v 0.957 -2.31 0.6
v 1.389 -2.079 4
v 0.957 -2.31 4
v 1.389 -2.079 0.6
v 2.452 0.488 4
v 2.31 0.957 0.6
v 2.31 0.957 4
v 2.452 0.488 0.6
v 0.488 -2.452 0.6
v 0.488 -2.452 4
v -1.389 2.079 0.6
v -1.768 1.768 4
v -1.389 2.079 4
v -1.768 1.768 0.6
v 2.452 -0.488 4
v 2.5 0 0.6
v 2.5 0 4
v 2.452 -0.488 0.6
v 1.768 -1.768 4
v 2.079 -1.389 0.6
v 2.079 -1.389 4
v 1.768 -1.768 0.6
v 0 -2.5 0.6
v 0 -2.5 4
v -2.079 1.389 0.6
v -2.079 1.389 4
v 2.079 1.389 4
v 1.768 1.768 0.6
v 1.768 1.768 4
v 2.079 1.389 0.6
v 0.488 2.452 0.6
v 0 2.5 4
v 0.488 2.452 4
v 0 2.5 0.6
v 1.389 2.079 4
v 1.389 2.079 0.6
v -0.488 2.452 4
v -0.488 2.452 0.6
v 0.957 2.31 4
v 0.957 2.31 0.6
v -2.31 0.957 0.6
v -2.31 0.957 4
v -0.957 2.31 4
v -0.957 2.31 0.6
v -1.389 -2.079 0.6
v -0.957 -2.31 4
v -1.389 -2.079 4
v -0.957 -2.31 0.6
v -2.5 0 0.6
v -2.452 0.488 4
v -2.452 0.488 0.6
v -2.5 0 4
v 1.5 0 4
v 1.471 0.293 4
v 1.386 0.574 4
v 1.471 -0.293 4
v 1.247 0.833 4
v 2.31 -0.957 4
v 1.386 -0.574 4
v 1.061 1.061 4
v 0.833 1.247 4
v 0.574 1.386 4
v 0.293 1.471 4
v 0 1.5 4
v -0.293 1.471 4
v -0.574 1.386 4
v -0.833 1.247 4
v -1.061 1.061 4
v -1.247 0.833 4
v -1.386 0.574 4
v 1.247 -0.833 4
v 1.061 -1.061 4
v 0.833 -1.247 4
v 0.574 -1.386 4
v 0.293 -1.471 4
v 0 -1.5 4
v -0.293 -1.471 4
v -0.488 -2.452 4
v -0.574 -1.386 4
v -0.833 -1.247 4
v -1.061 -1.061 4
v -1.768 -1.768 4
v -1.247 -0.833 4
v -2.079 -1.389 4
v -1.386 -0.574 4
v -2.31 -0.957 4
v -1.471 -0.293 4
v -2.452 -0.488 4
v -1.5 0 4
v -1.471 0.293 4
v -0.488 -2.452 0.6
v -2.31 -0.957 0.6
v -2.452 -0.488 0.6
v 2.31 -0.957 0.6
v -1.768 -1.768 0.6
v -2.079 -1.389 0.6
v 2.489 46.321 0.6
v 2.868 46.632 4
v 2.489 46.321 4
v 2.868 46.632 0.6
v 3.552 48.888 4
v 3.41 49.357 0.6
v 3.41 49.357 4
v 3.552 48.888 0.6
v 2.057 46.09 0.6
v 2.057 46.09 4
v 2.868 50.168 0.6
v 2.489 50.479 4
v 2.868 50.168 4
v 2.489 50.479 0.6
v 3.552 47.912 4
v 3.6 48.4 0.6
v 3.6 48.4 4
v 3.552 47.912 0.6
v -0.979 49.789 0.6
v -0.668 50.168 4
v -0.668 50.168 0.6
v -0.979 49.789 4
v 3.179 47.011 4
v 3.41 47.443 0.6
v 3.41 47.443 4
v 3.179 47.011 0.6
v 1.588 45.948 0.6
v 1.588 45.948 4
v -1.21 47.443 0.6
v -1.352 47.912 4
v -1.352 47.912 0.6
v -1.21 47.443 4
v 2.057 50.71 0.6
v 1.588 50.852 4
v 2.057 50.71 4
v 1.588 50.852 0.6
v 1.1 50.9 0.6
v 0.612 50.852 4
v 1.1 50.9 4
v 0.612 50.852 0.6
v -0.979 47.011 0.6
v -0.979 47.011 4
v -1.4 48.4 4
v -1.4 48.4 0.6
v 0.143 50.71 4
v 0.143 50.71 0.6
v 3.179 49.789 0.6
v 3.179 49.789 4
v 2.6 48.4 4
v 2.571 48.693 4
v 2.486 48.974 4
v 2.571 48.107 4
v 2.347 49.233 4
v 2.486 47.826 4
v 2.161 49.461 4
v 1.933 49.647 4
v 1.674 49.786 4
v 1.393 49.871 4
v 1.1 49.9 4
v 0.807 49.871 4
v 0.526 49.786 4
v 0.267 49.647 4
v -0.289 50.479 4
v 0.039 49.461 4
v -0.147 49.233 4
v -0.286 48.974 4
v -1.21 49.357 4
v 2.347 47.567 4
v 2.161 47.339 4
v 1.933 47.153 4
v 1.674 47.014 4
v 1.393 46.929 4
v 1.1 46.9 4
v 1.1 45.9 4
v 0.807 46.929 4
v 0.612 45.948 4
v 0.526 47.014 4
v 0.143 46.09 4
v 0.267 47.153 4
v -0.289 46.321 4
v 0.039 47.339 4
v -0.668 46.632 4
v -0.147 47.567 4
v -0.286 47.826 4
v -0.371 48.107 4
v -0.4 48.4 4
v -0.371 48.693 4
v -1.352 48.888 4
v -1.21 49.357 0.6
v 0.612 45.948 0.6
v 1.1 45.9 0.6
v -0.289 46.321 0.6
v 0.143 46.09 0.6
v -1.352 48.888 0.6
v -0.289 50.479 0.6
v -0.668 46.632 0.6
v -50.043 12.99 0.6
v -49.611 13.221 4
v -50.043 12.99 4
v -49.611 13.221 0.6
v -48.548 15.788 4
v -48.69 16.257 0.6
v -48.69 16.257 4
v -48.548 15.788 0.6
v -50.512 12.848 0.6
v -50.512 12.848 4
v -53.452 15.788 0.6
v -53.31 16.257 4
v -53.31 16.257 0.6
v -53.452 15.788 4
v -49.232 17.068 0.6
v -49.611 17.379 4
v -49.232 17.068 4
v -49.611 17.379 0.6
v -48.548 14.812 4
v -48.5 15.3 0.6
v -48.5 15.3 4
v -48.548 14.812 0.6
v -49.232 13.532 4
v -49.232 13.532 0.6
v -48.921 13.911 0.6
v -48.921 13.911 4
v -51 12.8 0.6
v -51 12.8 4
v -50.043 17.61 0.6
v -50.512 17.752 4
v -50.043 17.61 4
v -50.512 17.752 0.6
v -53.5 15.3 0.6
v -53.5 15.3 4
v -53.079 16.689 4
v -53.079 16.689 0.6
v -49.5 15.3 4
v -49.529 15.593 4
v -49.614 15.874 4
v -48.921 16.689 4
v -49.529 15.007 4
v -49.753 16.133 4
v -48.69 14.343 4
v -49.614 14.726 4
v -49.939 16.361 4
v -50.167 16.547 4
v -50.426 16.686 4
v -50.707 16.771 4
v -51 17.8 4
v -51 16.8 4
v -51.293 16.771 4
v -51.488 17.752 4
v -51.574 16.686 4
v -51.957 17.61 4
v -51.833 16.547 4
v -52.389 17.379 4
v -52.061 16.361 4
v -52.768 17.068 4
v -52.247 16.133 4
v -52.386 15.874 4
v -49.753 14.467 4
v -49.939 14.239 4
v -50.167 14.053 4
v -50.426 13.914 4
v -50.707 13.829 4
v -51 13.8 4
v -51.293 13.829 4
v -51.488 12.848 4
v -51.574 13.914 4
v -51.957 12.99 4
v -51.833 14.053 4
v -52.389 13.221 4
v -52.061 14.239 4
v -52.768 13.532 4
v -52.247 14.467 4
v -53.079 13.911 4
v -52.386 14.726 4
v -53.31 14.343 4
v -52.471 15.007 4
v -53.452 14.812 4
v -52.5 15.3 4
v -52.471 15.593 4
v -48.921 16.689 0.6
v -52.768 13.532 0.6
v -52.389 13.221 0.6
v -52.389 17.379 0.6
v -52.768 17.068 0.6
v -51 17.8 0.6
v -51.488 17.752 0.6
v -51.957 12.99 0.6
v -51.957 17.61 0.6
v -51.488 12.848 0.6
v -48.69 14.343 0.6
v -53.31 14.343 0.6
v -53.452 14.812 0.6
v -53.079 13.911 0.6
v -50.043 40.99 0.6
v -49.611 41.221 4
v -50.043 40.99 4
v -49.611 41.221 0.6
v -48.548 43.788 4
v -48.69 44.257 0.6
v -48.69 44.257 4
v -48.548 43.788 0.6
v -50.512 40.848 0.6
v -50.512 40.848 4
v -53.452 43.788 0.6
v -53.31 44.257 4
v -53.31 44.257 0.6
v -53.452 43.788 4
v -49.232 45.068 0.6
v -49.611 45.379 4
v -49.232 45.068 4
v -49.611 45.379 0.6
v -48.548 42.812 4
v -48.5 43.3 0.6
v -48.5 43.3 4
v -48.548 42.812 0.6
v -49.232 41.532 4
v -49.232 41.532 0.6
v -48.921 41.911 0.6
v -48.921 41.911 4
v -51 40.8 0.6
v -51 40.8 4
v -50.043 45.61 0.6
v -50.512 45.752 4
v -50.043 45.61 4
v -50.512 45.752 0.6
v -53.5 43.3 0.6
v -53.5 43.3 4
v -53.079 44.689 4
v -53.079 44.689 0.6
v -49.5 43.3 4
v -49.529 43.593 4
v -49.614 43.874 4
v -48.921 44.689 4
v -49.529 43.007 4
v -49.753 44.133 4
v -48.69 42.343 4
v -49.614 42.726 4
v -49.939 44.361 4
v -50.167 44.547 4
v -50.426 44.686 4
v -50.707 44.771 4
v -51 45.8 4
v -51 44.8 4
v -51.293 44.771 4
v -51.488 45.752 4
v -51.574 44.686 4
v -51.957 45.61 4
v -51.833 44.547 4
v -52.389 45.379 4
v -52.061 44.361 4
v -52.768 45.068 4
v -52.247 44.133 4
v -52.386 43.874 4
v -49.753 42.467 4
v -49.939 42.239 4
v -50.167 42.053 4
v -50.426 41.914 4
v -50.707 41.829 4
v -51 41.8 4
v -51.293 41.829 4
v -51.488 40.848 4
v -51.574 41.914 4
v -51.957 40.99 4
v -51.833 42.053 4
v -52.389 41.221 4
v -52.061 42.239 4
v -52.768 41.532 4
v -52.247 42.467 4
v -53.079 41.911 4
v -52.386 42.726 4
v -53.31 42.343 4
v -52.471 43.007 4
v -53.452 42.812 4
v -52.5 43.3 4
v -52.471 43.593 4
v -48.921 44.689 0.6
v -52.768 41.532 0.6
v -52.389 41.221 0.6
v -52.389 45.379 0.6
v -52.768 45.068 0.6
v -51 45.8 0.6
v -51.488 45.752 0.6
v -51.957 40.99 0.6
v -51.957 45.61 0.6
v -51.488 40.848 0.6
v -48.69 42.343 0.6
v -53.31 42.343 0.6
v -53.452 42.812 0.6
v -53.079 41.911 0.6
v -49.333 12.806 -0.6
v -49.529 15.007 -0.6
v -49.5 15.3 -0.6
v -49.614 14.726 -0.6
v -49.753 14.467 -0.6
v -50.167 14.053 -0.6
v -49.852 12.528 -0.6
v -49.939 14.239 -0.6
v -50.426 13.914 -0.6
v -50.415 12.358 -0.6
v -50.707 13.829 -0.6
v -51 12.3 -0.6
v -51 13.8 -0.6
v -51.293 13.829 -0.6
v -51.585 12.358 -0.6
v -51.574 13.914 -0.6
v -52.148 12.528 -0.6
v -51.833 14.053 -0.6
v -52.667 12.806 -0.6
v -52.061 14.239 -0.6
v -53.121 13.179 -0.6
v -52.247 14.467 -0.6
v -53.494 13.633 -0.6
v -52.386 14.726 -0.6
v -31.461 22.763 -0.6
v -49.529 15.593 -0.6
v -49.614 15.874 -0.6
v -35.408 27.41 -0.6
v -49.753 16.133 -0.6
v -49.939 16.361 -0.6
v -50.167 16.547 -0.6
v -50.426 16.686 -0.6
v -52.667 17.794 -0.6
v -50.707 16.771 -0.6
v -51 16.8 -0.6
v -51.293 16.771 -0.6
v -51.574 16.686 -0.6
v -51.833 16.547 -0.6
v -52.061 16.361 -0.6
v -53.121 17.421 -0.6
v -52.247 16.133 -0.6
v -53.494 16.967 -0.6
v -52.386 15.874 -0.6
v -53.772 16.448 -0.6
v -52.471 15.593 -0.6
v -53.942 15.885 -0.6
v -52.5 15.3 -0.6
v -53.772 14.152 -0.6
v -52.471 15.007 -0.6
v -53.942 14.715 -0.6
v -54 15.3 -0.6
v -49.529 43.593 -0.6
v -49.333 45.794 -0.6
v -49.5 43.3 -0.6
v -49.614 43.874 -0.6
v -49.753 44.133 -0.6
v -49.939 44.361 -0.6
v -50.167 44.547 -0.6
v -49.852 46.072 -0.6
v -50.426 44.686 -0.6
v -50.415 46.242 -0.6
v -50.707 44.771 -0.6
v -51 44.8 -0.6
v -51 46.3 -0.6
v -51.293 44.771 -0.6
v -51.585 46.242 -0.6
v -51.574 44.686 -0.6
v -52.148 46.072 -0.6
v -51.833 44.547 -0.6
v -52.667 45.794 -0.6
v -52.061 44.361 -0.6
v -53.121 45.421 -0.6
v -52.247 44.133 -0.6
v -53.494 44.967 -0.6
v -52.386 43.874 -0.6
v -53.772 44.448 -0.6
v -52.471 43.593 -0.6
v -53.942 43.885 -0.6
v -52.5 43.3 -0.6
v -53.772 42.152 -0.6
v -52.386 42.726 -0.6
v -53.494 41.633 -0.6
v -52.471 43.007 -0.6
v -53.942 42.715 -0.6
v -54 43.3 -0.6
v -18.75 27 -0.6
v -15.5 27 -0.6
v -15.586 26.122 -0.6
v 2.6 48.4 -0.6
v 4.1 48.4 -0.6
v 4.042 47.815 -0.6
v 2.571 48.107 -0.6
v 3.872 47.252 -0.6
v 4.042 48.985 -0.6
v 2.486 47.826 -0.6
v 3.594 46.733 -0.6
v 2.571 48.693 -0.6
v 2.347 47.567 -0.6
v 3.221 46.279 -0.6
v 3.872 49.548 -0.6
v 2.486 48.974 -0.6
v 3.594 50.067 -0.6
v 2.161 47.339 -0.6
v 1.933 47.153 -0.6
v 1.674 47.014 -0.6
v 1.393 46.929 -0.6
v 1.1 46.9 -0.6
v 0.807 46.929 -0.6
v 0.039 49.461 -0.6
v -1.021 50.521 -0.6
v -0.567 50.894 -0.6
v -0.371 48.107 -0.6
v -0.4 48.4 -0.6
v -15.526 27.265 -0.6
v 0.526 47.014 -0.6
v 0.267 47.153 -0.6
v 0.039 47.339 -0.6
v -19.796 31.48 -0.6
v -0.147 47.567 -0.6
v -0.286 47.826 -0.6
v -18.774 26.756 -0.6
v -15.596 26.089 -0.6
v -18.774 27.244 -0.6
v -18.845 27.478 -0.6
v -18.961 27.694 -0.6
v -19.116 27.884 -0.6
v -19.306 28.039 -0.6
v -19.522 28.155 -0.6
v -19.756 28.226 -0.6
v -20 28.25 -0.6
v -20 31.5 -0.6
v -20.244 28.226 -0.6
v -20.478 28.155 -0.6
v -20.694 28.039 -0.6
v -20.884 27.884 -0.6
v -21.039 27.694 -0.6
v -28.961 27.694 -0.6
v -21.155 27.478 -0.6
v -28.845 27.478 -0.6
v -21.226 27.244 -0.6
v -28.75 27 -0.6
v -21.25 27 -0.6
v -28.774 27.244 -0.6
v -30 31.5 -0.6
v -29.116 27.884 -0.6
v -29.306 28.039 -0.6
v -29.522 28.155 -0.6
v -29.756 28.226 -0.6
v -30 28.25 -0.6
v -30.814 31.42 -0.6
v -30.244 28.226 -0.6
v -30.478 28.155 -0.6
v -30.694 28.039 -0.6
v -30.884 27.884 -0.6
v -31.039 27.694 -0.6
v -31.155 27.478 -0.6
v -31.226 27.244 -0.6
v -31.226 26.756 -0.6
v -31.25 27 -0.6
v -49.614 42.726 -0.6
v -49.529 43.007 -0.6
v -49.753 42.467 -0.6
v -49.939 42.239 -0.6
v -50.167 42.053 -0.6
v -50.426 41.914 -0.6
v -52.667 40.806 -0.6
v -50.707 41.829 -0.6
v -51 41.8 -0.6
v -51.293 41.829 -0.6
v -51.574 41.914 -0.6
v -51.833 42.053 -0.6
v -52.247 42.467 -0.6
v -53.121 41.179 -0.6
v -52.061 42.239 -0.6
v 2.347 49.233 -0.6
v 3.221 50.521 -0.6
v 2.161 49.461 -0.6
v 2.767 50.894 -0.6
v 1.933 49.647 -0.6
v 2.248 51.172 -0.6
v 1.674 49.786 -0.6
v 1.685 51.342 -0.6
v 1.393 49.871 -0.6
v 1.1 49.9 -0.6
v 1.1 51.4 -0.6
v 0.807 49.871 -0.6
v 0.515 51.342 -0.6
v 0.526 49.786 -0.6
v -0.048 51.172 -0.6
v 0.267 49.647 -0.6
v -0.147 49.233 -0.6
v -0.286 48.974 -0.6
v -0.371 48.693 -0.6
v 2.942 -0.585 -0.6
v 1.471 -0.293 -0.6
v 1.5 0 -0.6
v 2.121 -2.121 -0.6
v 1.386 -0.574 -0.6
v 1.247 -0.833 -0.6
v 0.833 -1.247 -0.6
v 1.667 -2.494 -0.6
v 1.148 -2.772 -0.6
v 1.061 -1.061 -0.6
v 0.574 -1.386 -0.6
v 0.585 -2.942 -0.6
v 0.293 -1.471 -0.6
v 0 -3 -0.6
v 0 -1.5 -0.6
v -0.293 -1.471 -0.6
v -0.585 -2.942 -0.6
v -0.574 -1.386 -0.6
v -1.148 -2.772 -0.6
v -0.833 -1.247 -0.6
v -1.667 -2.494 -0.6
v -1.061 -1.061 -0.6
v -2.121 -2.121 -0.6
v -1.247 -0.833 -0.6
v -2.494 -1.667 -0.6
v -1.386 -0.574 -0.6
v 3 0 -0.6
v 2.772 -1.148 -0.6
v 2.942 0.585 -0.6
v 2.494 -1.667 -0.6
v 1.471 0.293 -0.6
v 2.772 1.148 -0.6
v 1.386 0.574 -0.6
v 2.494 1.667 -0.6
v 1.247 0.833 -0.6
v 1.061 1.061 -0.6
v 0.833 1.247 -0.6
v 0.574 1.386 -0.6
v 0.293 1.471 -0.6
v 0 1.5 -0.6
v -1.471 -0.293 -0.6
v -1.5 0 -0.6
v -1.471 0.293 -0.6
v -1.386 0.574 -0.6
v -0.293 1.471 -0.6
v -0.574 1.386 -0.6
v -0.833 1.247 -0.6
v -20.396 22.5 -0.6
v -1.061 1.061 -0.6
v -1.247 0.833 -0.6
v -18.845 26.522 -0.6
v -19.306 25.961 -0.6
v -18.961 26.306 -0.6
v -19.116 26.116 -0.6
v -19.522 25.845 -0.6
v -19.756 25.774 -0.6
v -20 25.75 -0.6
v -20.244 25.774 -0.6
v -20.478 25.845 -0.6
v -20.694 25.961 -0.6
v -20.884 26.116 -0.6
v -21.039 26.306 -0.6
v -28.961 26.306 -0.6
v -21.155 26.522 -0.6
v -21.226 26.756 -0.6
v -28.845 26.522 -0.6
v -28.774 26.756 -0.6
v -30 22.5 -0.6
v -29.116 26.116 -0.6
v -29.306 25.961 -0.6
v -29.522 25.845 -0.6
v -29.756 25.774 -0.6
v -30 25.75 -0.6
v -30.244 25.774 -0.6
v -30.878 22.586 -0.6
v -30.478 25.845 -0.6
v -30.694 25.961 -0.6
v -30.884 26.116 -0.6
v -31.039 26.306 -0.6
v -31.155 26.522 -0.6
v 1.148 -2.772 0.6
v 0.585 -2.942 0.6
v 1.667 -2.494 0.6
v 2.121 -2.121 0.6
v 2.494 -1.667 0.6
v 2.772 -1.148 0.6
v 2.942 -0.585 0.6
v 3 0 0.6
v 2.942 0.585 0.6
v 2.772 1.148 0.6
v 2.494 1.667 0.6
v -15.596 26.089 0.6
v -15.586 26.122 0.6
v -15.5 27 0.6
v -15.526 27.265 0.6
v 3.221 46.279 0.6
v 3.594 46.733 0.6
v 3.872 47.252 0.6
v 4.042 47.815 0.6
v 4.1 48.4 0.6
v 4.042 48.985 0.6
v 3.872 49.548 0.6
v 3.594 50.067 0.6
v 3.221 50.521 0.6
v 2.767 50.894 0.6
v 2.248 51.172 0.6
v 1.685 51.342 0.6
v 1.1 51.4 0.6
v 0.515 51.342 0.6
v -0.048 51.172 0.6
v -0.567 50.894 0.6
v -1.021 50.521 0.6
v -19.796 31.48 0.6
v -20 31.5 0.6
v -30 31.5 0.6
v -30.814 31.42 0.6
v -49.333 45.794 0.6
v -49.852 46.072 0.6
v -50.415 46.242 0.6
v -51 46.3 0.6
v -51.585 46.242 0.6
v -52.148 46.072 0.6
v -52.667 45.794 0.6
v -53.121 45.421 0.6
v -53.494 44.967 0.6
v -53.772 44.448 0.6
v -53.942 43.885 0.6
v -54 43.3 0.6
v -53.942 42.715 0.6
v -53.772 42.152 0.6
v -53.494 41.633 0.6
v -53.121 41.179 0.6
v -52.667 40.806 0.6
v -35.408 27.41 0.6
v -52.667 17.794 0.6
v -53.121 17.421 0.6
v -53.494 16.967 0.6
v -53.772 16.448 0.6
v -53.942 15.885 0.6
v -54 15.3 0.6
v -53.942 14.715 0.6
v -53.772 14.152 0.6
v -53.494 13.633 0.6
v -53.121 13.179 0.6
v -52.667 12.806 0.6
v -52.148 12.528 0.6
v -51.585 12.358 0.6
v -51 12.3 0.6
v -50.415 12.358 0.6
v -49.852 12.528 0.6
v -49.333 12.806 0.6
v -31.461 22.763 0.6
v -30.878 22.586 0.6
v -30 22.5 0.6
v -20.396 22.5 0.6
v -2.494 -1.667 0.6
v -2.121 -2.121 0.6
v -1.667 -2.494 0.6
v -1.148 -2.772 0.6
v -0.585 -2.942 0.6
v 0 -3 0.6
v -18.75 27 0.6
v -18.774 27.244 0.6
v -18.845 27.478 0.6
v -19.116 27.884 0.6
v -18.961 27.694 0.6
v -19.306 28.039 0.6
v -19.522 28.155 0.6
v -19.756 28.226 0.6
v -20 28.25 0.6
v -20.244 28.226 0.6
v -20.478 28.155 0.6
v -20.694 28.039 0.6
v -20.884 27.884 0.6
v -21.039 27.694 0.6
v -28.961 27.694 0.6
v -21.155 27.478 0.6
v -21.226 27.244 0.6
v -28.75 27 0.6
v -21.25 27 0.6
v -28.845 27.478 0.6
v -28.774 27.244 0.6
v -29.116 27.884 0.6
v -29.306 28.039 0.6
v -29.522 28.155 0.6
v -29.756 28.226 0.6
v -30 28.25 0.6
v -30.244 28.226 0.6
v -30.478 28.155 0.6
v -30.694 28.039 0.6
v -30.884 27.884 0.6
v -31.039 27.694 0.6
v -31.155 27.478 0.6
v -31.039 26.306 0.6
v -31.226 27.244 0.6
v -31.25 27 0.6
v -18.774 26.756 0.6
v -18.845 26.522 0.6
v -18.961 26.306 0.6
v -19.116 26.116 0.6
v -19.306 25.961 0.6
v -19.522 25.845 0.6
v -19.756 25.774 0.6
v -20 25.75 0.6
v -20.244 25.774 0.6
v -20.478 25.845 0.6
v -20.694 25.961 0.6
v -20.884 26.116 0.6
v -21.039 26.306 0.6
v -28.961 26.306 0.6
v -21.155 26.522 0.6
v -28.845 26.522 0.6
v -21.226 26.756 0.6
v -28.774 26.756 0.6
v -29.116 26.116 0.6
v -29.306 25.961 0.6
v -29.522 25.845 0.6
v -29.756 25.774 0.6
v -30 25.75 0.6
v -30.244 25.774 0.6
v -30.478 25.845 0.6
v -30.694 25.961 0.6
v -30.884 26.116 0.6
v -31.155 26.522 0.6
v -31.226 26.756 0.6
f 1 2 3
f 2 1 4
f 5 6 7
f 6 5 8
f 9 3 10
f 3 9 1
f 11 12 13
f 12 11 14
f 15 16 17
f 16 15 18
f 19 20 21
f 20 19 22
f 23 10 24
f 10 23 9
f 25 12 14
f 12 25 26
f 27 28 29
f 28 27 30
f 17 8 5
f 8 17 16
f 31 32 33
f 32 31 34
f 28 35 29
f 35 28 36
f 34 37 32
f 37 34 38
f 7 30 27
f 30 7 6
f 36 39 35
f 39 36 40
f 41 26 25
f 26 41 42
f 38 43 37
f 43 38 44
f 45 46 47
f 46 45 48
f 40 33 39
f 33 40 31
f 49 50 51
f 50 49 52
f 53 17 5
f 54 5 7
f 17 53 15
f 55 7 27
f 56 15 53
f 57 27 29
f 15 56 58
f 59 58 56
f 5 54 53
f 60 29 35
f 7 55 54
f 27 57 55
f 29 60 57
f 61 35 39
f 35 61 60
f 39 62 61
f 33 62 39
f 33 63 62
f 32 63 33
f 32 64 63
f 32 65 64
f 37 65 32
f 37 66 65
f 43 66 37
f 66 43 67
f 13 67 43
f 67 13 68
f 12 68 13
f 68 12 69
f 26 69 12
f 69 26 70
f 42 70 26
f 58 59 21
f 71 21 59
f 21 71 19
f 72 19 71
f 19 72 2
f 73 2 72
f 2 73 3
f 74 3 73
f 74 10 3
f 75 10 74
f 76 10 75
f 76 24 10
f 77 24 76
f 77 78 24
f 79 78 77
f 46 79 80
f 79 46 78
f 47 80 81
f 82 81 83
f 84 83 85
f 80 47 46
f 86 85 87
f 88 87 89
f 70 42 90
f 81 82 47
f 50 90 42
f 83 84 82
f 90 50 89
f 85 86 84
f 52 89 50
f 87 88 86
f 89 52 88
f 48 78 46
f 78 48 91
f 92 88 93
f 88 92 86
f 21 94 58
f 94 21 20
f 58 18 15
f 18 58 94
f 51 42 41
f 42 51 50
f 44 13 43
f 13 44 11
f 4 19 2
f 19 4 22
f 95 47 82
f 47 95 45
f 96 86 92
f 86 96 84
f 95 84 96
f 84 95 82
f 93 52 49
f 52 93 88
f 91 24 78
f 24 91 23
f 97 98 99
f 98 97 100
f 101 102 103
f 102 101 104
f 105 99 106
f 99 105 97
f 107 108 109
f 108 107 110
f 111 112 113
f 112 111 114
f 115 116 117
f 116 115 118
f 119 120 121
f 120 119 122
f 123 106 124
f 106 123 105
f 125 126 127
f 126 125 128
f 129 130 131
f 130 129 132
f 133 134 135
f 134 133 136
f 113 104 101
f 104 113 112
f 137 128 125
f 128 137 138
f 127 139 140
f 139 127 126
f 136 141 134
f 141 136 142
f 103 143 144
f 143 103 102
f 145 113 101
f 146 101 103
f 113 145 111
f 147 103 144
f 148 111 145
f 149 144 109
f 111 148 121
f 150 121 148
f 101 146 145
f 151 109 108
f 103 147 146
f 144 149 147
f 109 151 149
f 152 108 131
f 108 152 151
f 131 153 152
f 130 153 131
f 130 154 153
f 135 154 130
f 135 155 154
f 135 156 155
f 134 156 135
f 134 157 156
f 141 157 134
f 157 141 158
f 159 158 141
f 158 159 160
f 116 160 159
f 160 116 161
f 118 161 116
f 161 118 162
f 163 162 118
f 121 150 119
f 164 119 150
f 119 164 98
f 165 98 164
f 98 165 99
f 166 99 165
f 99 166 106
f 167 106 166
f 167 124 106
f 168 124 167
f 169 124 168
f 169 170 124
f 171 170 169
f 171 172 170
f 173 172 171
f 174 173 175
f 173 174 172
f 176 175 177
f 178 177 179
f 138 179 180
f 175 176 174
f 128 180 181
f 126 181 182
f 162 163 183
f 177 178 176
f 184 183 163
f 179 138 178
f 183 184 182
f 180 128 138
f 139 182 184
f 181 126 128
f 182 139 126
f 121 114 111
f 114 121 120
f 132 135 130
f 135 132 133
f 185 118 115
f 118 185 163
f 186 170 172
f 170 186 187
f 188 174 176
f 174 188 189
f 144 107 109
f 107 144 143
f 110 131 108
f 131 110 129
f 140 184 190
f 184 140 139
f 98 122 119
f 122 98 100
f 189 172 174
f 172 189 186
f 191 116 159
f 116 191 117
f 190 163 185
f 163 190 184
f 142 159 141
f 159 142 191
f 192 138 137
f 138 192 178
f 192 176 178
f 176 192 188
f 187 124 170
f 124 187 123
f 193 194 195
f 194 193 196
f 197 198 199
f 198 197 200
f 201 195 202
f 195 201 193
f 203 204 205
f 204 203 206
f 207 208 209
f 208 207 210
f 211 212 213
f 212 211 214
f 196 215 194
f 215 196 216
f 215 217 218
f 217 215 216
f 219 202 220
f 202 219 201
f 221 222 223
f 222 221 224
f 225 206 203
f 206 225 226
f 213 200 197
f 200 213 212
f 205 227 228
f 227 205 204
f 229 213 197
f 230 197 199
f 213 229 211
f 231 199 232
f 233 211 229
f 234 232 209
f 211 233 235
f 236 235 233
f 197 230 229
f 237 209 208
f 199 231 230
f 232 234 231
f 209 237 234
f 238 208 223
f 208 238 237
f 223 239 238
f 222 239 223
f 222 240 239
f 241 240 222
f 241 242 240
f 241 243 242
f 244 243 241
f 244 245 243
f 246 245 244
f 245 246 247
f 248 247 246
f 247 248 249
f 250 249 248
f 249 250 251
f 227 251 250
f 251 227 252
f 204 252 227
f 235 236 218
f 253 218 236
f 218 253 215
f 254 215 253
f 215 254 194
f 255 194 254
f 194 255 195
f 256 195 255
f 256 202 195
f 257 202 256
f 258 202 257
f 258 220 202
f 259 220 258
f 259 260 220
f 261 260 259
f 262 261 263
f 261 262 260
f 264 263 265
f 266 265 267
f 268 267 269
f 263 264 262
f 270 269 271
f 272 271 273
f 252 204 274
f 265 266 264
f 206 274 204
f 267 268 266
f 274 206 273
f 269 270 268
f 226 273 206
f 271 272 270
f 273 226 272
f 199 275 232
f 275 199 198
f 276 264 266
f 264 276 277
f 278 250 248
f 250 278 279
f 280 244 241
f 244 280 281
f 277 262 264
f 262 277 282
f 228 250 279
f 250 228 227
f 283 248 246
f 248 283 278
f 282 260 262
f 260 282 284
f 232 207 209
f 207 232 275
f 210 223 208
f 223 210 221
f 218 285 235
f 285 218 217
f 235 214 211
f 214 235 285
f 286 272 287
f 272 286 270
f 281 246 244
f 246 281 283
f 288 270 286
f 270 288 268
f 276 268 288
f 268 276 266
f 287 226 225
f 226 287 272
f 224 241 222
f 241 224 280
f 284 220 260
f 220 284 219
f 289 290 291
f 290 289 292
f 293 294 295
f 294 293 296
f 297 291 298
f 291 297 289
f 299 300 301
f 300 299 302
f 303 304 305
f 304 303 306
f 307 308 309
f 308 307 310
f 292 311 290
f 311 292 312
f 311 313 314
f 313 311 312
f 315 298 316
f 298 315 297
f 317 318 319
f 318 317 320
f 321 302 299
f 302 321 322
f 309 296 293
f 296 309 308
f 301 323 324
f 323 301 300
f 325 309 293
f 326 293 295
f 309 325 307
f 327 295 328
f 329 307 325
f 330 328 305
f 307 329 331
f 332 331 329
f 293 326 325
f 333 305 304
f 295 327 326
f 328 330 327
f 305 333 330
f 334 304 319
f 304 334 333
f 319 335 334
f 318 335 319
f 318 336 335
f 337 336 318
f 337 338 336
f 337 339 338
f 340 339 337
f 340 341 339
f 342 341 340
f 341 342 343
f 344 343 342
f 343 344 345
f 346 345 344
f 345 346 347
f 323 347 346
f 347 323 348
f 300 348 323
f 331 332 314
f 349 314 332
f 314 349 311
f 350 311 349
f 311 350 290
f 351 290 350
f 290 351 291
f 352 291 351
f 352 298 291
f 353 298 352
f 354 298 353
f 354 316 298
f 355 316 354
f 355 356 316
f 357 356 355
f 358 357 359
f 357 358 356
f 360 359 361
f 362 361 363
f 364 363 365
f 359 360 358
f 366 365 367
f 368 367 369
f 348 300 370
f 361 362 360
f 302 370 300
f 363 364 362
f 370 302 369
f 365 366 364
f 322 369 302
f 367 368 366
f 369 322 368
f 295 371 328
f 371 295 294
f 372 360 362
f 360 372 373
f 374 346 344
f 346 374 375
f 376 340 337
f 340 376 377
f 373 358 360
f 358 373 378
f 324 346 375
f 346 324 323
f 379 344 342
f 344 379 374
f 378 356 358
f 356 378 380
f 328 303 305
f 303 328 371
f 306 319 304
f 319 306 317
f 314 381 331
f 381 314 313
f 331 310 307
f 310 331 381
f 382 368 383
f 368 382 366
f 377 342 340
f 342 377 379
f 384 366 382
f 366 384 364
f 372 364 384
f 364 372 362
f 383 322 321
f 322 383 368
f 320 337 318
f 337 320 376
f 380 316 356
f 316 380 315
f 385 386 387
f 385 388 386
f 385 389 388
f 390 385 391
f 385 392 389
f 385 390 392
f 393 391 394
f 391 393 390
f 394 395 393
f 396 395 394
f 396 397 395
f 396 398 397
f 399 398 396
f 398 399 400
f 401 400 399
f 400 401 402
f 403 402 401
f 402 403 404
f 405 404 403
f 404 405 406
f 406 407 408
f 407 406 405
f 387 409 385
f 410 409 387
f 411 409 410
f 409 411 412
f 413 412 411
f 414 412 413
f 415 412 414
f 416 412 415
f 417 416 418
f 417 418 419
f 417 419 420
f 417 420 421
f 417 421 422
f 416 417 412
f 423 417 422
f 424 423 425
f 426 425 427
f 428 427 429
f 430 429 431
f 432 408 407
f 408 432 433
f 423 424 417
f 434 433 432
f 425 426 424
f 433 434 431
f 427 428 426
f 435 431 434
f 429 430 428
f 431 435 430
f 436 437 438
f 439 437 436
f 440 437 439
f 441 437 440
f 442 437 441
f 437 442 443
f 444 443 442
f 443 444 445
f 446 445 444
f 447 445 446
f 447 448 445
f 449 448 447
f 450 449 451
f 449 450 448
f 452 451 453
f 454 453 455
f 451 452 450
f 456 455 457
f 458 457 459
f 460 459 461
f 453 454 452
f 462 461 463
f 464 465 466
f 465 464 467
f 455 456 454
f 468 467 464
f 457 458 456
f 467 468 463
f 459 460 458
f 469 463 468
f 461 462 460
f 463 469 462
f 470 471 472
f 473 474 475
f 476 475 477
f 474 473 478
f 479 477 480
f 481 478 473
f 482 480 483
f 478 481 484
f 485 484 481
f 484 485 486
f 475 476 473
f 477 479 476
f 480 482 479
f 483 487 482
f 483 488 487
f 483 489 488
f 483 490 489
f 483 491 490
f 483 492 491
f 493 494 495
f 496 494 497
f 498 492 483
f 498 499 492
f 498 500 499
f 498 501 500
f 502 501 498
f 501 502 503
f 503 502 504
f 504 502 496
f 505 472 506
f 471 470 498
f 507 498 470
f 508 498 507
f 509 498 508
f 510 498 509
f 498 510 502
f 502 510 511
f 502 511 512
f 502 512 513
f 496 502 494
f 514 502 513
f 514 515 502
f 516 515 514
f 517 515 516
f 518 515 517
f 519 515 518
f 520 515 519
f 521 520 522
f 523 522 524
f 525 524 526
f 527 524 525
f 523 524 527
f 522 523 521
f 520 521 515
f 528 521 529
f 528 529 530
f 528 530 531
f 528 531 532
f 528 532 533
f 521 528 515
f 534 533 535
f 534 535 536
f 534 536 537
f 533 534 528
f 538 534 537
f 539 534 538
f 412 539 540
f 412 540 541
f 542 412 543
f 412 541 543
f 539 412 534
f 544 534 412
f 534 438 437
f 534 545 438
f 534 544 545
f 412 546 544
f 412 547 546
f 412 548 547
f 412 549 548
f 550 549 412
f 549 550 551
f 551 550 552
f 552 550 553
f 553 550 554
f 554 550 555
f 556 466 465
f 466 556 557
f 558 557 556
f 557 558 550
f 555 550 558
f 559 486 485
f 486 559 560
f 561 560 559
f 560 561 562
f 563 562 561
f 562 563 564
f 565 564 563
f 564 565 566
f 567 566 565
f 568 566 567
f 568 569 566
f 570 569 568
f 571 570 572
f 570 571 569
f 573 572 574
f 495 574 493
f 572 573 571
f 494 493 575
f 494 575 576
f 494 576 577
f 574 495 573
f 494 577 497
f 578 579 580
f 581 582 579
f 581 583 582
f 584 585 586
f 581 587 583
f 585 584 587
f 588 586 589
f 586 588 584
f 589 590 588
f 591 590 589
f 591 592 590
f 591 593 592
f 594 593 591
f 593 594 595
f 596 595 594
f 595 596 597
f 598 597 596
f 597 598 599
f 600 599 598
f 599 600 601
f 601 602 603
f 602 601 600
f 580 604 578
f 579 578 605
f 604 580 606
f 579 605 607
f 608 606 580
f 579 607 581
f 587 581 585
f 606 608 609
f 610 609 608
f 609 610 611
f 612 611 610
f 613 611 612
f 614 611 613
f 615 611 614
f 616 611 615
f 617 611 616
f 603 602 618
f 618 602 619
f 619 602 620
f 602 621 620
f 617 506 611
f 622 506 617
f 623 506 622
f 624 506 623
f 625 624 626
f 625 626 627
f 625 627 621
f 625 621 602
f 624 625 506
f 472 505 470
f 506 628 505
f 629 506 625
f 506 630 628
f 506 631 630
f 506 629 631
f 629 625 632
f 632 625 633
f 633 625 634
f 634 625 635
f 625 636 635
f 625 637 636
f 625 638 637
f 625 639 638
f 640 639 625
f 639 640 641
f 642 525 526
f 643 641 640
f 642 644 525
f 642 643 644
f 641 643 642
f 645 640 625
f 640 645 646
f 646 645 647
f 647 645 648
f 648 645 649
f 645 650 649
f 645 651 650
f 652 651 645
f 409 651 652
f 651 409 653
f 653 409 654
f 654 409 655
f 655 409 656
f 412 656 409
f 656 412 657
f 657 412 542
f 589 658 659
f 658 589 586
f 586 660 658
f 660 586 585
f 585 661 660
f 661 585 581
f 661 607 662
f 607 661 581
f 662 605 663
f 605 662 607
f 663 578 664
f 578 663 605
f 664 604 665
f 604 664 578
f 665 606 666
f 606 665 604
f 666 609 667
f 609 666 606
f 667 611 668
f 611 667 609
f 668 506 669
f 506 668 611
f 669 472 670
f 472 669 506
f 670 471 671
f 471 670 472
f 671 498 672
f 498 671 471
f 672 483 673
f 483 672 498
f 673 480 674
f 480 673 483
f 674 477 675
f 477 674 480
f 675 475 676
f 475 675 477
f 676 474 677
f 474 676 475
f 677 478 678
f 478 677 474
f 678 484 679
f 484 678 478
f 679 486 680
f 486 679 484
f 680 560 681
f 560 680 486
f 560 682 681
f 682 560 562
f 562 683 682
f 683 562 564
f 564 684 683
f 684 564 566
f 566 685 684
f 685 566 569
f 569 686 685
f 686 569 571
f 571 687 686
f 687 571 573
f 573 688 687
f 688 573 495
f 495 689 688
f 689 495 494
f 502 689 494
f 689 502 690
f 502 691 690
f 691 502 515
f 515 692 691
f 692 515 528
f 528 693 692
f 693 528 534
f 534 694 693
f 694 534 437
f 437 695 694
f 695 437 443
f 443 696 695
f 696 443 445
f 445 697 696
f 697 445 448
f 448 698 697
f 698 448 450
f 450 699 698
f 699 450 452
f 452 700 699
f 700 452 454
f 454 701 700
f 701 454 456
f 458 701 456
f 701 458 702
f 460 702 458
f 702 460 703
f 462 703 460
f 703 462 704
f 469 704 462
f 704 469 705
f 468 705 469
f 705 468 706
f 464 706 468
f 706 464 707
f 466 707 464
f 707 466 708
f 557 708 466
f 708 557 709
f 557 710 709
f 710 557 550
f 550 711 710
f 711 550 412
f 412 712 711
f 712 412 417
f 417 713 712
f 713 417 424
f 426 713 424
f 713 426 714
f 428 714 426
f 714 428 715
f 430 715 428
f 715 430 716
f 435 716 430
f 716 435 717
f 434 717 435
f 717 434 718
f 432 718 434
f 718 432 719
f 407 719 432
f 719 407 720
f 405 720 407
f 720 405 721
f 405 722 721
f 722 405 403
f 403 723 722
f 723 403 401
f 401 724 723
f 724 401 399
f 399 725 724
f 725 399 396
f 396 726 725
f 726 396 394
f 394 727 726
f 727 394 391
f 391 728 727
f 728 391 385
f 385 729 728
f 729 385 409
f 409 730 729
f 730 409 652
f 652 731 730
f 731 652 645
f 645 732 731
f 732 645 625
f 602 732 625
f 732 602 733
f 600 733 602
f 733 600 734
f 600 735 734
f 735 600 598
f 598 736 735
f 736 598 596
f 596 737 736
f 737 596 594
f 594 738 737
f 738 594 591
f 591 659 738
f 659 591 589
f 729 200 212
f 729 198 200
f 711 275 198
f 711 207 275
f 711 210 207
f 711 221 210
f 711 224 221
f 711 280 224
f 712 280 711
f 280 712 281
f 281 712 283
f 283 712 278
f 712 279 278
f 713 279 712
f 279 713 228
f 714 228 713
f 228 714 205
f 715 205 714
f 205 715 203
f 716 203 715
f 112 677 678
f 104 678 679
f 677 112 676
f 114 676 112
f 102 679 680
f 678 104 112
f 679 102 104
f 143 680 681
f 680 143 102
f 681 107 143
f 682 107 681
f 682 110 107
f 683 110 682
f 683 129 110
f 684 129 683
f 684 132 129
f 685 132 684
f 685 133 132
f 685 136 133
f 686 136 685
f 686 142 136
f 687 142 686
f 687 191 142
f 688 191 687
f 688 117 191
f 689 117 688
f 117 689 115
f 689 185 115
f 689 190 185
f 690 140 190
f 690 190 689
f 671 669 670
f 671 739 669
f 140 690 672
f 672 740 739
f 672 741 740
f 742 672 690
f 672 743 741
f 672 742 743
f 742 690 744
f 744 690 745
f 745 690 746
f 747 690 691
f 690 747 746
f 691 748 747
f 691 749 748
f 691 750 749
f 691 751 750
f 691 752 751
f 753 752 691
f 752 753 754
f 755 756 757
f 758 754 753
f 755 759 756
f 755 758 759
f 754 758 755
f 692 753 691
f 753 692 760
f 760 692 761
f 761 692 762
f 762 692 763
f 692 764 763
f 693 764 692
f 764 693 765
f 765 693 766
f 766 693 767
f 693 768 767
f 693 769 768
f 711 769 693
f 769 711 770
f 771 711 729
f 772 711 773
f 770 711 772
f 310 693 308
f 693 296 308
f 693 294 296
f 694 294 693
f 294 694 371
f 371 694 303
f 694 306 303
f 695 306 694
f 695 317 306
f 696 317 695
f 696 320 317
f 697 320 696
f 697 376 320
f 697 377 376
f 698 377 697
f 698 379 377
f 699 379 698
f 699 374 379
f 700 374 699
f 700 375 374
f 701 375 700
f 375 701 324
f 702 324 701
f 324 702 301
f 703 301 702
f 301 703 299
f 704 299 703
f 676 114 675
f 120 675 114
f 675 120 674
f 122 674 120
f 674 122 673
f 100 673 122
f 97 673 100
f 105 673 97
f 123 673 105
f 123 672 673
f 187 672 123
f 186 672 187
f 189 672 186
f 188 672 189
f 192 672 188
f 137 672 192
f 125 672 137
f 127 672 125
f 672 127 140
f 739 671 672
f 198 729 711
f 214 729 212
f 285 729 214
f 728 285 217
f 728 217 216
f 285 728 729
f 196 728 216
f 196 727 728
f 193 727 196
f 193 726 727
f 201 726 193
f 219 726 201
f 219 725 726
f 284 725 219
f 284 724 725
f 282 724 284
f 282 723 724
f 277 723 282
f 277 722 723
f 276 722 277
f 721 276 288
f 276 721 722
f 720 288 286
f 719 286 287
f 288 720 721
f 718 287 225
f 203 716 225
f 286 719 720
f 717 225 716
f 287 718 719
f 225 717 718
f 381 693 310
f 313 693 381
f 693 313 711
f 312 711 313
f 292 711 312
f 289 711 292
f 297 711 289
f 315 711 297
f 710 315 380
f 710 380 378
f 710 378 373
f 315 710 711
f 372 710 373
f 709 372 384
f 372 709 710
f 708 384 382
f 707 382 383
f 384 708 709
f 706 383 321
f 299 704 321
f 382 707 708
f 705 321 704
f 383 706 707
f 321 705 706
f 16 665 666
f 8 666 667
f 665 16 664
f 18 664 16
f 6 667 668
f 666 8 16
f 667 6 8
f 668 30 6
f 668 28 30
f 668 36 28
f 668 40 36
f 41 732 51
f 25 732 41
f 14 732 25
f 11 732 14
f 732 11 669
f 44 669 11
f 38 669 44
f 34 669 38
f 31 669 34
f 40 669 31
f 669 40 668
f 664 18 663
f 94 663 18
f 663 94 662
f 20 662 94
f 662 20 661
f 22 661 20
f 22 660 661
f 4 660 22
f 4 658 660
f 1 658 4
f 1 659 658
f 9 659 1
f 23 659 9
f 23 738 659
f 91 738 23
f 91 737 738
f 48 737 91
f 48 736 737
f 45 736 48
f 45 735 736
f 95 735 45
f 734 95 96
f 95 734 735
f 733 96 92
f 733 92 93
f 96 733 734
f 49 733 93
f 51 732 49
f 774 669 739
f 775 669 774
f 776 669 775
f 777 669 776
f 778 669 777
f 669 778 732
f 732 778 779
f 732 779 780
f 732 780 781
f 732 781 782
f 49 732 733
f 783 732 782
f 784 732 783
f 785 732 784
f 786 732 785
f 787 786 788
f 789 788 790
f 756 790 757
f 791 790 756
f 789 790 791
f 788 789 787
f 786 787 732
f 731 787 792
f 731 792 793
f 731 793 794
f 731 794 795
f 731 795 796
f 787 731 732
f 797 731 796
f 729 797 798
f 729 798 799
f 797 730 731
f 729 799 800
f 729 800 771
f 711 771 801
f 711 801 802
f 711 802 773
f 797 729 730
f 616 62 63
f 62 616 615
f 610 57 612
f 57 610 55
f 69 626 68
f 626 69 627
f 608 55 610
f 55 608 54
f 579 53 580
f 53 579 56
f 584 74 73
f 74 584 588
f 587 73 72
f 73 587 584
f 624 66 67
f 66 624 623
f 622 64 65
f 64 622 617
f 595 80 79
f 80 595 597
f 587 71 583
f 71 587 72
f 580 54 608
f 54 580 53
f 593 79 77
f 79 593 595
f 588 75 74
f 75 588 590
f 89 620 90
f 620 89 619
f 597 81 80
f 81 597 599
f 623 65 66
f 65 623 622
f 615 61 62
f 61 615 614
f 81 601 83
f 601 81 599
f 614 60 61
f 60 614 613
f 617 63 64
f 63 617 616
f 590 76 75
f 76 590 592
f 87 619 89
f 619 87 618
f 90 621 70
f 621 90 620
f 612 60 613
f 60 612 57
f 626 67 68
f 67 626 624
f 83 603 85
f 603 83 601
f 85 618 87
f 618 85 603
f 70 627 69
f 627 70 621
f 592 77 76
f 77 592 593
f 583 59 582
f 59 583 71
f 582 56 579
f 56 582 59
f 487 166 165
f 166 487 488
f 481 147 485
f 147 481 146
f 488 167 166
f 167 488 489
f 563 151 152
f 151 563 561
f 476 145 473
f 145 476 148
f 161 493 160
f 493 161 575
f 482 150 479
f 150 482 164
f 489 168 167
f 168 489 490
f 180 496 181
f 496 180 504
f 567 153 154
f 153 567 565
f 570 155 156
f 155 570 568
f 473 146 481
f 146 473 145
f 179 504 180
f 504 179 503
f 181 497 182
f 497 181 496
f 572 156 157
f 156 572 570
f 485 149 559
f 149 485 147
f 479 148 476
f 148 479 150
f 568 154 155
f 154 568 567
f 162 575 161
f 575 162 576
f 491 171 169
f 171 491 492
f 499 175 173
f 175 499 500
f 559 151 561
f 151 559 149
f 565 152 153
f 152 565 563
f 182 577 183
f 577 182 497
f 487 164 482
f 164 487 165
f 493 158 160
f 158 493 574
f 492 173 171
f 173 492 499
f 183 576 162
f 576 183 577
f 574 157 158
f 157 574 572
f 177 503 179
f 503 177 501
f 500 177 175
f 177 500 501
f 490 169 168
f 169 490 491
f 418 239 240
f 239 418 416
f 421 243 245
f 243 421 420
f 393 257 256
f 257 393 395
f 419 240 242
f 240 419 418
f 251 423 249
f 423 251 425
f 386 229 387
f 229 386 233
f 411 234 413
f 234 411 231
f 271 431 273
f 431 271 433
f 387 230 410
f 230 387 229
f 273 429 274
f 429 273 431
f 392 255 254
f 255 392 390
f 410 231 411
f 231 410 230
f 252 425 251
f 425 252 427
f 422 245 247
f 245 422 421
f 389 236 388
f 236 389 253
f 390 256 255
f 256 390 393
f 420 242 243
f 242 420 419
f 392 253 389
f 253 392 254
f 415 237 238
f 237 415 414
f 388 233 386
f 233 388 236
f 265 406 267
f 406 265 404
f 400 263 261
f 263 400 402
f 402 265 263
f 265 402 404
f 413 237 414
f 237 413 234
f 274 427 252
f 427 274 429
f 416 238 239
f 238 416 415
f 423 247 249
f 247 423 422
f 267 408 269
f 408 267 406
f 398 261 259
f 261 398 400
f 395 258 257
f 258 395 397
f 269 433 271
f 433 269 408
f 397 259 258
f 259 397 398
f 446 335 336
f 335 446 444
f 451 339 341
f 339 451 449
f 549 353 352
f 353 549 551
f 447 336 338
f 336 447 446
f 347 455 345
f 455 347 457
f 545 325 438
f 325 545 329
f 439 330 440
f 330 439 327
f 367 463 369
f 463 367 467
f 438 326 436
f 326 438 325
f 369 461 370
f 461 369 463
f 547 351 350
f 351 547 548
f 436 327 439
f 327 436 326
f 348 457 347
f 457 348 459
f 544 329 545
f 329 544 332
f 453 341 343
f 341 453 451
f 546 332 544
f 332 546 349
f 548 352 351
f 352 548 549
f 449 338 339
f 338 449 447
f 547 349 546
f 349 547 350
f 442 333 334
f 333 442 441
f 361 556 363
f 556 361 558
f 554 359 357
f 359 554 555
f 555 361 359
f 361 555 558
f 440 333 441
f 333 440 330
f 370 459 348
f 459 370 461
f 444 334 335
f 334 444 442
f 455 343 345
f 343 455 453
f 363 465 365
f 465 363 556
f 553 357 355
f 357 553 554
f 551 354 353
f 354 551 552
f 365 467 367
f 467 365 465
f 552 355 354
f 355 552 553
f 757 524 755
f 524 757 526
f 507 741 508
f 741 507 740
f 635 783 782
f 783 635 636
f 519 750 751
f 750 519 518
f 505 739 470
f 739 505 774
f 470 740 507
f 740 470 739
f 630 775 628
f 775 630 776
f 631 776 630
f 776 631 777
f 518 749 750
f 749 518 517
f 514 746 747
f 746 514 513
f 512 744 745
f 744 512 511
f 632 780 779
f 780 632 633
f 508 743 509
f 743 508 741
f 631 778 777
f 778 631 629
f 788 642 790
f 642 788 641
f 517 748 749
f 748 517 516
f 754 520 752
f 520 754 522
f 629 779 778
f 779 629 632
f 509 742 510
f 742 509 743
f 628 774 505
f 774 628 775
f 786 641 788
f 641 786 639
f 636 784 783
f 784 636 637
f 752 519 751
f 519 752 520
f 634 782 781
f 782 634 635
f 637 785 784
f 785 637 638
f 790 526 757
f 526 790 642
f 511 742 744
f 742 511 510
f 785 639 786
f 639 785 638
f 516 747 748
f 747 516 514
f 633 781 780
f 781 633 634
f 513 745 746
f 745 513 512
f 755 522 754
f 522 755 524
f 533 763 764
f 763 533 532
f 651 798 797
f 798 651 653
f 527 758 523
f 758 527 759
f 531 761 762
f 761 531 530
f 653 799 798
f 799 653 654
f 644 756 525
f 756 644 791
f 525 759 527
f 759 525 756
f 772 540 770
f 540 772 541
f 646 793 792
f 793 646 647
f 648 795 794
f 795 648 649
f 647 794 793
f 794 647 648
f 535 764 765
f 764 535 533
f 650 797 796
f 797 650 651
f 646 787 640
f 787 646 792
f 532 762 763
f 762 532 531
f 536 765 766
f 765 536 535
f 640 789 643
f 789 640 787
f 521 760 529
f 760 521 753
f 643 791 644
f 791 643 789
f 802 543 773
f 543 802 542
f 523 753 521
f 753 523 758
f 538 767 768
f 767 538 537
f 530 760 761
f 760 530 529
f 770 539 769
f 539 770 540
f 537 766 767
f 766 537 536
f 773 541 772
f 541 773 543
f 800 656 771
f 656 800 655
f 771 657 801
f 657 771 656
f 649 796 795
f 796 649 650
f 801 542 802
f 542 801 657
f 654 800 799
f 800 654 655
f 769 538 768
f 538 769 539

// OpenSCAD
$fn = 32;

arduino_holes = [
  [0, 0],
  [1.1, 48.4],
  [-51, 15.3],
  [-51, 43.3]
];

module place_things(pos_list) {
   for (t = pos_list) {  
     translate(t)
     //children(0);
     children([0:1:$children-1]);
   }
 }


module uno_support(db = 6, cx1 = -20, cx2 = -30, cy = 27) {

  difference() {
    union() {
      place_things(arduino_holes)
      cylinder(d = 5, h = 4);
      
      linear_extrude(height = 1.2, center = true, convexity = 10, twist = 0) {
        hull() {
          translate(arduino_holes[0])
          circle(d = db); 
          
          translate([cx1, cy, 0])
          circle(d = db); 
        }

        hull() {
          translate(arduino_holes[1])
          circle(d = db); 
          
          translate([cx1, cy, 0])
          circle(d = db); 
        }

        hull() {
          translate(arduino_holes[3])
          circle(d = db); 
          
          translate([cx2, cy, 0])
          circle(d = db); 
        }
        
        hull() {
          translate(arduino_holes[2])
          circle(d = db); 
          
          translate([cx2, cy, 0])
          circle(d = db); 
        }

        hull() {
          translate([cx1, cy, 0])
          circle(d = db + 3); 
          
          translate([cx2, cy, 0])
          circle(d = db + 3); 
        }
      }
    }
    place_things(arduino_holes)
    cylinder(d = 3, h = 10, center = true);    
    
    translate([cx1, cy, 0])
    cylinder(d = 2.5, h = 10, center = true);    

    translate([cx2, cy, 0])
    cylinder(d = 2.5, h = 10, center = true);    

  }
}


uno_support();
